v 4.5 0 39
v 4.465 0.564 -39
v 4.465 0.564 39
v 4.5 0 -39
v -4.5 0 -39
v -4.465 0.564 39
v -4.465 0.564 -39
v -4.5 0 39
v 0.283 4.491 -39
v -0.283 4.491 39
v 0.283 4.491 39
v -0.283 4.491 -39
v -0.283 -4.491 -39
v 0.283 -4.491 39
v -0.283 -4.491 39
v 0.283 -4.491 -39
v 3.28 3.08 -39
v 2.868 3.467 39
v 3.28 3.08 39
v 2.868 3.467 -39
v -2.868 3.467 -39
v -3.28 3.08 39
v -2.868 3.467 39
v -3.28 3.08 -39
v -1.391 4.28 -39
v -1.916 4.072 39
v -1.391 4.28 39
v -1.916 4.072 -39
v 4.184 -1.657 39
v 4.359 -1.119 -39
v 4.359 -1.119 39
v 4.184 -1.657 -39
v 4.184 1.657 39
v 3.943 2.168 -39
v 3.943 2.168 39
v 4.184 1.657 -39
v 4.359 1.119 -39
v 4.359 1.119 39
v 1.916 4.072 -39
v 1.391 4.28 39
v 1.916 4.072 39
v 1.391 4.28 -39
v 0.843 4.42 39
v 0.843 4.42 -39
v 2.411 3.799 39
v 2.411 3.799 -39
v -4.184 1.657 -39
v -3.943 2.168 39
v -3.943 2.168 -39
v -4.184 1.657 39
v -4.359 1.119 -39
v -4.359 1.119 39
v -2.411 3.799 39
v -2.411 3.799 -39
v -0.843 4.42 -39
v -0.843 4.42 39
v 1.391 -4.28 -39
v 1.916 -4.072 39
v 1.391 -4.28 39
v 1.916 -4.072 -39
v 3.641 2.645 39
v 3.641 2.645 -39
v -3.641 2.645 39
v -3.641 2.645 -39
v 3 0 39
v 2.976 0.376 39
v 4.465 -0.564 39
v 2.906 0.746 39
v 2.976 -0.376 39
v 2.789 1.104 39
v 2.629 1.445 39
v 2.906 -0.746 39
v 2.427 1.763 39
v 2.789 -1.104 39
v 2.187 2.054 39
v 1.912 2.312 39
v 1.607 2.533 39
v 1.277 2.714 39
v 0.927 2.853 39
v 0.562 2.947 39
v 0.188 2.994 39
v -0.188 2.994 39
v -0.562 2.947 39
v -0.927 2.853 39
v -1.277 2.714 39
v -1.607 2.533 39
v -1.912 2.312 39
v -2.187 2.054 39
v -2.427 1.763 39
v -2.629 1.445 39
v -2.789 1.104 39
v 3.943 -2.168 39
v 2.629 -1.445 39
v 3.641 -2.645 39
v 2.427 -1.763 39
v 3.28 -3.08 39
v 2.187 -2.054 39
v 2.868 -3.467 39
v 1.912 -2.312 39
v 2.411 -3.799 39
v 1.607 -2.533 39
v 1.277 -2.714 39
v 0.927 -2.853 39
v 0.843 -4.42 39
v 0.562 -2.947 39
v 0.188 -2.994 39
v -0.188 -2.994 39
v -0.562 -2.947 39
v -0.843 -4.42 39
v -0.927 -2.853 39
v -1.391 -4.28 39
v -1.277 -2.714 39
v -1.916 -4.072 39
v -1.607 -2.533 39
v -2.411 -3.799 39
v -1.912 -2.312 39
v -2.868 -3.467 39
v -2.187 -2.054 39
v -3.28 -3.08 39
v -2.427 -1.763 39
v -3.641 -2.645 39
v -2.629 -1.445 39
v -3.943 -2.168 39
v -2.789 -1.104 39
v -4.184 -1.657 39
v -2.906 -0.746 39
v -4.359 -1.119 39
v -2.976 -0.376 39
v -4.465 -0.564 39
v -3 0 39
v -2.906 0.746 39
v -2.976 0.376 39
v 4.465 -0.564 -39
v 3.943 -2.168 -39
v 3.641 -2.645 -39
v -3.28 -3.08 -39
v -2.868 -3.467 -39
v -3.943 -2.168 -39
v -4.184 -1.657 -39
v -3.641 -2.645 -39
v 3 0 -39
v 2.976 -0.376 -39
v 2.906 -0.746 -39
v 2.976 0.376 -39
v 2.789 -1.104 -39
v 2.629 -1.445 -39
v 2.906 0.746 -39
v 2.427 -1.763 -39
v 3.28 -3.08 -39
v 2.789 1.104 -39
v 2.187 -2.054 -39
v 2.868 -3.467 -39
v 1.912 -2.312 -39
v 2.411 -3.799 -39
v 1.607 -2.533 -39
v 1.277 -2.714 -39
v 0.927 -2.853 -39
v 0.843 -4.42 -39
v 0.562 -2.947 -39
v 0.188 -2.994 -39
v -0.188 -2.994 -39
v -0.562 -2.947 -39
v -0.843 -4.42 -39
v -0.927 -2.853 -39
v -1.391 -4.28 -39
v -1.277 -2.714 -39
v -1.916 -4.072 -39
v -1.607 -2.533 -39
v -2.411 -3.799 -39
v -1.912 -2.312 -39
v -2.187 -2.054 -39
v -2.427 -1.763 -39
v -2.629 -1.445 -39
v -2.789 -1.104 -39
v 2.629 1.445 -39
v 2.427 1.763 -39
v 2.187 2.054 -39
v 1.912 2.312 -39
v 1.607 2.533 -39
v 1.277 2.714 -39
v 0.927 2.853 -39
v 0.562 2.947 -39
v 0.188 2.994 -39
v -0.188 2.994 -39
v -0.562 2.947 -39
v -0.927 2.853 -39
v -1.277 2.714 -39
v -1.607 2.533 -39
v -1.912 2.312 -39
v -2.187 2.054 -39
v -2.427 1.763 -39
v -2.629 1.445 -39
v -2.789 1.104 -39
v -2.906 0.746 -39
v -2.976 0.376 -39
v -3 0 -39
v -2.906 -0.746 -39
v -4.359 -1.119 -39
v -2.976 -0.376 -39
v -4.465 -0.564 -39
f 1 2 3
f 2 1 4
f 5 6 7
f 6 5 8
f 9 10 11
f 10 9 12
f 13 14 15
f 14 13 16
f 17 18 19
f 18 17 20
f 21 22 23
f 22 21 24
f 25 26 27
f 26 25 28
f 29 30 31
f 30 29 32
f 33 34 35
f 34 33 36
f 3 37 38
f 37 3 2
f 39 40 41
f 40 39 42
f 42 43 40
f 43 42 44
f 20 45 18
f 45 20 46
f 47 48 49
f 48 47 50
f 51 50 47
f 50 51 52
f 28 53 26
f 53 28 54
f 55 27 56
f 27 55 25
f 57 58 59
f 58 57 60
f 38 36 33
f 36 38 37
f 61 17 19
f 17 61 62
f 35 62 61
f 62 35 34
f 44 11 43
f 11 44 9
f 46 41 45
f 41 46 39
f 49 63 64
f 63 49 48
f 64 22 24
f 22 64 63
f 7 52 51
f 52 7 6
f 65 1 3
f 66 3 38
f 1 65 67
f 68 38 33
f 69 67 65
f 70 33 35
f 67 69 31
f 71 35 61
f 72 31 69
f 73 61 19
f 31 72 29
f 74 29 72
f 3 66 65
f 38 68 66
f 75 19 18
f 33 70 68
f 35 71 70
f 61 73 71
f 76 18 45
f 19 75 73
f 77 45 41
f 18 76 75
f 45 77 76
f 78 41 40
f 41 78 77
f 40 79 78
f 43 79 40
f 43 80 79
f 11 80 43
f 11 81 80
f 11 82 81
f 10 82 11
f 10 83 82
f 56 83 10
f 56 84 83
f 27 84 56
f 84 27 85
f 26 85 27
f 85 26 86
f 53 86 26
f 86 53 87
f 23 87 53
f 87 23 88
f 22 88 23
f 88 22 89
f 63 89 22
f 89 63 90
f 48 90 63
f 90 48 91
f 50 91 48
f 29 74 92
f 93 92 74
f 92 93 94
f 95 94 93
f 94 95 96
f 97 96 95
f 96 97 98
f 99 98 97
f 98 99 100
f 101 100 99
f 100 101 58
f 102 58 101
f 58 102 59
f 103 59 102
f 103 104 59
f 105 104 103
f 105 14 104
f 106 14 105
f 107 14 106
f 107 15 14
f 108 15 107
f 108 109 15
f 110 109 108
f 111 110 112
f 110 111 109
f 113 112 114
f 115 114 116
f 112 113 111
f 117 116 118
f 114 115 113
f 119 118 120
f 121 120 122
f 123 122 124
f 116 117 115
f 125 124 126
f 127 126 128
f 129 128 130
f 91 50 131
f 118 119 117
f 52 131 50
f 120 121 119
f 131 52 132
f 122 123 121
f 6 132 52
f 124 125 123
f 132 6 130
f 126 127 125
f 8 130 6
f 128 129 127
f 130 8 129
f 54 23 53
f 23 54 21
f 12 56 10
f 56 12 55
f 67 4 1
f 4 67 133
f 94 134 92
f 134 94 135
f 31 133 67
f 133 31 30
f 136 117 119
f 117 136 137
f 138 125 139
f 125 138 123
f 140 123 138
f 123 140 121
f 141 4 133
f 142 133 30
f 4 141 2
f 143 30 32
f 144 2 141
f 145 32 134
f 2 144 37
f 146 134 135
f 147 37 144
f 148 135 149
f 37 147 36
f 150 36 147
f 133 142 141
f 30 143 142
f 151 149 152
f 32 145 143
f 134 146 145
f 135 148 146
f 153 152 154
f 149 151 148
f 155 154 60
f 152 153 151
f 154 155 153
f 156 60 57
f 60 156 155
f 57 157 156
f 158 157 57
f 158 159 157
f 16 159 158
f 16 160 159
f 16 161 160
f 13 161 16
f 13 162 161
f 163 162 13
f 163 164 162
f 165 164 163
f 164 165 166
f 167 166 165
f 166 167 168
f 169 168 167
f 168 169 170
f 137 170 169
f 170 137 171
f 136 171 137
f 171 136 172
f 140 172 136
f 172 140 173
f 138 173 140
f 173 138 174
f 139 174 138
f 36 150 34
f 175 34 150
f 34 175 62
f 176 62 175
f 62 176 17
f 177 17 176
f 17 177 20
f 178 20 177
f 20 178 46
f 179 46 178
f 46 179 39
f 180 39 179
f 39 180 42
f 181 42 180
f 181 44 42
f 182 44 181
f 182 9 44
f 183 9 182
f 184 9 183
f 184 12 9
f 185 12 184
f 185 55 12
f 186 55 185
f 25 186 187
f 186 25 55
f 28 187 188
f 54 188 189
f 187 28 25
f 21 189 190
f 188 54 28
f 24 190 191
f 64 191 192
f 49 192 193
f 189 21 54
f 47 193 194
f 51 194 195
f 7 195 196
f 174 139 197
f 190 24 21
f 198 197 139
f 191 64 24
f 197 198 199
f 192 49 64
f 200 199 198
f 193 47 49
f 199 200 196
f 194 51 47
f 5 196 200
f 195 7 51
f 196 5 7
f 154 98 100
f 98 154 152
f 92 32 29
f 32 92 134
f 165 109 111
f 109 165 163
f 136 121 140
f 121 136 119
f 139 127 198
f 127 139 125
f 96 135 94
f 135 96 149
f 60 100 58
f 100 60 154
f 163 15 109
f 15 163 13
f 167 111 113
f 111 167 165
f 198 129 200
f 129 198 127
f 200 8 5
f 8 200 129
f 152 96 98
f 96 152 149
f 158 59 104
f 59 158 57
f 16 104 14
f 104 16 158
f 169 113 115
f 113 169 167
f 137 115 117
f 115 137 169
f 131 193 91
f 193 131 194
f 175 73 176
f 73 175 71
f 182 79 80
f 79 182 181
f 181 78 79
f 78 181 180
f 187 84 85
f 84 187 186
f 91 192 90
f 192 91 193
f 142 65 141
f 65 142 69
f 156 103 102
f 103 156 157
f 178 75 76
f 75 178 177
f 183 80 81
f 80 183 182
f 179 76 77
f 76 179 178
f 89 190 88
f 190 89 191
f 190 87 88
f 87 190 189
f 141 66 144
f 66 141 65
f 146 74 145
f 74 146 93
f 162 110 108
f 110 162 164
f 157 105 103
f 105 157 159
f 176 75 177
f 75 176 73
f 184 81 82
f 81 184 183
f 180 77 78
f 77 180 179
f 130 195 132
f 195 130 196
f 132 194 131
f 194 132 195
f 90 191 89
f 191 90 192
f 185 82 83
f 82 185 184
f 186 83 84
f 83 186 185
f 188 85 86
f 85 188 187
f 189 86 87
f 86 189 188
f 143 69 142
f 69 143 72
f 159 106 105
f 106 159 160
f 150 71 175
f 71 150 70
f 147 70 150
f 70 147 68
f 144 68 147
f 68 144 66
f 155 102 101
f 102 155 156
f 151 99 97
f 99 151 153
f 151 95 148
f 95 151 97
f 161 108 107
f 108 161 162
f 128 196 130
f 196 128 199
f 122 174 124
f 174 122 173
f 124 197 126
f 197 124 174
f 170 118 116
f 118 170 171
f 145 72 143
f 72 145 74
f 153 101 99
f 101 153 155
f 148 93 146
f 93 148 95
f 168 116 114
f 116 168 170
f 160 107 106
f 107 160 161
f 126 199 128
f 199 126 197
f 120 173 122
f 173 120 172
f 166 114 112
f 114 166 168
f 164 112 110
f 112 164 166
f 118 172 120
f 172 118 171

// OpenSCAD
$fn = 50;


difference() {
	union() {
		translate(v = [0, 0, -39.0000000000]) {
			cylinder(h = 78, r = 4.5000000000);
		}
	}
	union() {
		translate(v = [0, 0, -100.0000000000]) {
			cylinder(h = 200, r = 3);
		}
	}
}
